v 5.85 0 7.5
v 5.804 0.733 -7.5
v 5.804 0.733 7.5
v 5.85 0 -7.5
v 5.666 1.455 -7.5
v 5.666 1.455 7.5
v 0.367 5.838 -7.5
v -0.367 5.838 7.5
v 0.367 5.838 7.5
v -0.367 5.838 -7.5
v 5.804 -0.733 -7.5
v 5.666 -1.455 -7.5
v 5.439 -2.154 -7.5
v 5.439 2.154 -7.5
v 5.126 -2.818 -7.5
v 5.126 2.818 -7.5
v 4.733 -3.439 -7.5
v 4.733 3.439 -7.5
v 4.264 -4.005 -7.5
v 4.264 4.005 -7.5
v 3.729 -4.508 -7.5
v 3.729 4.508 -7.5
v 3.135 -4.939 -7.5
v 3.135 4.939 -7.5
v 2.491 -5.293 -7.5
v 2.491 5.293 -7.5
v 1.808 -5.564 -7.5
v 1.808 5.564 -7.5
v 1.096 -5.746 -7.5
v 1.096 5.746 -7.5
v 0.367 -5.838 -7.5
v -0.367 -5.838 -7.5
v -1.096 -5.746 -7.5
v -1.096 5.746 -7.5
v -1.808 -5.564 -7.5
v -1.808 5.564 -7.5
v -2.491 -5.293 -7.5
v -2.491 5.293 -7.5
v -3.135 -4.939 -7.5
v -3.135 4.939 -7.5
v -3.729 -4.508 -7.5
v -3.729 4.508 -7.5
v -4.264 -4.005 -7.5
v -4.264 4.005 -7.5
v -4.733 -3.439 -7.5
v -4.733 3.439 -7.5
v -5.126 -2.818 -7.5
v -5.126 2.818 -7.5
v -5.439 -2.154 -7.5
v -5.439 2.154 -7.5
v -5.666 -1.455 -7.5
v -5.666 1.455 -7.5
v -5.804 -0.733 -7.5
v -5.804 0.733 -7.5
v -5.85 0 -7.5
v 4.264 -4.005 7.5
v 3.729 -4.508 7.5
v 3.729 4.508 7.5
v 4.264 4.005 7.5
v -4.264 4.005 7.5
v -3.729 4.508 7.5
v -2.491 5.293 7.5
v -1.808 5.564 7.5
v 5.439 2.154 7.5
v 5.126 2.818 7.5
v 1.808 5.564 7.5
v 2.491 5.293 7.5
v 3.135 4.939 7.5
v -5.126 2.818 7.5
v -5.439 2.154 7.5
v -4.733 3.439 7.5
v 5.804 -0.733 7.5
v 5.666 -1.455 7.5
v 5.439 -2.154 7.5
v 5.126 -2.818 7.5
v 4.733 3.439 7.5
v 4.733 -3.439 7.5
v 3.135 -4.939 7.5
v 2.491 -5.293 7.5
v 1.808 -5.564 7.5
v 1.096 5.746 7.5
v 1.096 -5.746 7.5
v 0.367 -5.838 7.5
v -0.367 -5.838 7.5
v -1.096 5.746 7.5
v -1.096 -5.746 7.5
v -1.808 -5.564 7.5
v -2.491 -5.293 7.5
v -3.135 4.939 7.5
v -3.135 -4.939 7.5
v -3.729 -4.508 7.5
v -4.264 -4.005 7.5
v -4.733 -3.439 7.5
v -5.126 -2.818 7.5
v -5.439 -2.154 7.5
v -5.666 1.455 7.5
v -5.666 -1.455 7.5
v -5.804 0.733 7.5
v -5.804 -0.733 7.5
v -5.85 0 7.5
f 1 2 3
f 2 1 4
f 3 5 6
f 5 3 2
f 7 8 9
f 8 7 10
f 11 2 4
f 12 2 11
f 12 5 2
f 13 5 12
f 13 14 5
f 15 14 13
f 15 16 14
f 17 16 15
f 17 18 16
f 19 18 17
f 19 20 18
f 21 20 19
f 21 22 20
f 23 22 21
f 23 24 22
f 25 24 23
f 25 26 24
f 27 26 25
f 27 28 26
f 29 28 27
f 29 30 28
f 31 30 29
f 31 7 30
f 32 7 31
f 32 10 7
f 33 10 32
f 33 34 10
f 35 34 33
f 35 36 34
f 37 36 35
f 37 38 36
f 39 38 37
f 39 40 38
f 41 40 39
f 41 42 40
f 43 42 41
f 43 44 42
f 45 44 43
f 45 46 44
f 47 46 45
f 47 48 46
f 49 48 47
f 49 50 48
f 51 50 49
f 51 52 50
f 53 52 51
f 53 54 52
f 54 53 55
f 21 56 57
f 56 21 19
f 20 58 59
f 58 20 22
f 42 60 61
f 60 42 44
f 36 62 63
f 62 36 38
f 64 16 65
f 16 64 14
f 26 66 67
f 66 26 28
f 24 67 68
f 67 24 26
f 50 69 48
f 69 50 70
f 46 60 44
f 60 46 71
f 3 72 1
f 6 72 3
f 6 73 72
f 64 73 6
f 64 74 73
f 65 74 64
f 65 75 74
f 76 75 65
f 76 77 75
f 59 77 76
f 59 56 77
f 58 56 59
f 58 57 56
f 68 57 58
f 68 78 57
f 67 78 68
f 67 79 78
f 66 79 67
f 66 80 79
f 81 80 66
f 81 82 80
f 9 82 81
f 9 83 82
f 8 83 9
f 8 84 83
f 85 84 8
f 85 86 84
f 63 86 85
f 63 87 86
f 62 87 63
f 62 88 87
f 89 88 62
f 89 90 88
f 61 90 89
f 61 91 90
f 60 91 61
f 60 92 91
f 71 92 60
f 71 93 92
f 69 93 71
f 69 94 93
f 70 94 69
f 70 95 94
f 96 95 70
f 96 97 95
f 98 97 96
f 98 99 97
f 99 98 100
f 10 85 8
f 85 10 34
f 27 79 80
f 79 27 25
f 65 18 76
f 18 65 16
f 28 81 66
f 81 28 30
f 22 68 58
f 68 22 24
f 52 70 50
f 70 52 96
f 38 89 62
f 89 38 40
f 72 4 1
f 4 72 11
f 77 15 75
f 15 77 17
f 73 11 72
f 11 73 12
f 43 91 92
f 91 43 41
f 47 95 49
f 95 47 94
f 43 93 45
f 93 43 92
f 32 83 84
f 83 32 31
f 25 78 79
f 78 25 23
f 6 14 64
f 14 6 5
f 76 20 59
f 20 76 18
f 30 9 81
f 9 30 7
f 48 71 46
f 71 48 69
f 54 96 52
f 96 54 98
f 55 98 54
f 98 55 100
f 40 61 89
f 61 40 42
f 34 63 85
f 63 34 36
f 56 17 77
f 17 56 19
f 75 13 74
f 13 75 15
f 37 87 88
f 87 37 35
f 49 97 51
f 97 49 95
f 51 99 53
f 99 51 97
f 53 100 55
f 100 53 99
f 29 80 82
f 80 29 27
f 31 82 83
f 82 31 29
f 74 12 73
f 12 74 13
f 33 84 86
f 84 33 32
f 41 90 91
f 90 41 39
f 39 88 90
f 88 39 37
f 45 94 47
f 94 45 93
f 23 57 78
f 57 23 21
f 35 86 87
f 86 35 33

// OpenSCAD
$fn = 50;


difference() {
	union() {
		translate(v = [0, 0, -7.5000000000]) {
			cylinder(h = 15, r = 5.8500000000);
		}
	}
	union() {
		translate(v = [0, 0, -100.0000000000]) {
			cylinder(h = 200, r = 0);
		}
	}
}
